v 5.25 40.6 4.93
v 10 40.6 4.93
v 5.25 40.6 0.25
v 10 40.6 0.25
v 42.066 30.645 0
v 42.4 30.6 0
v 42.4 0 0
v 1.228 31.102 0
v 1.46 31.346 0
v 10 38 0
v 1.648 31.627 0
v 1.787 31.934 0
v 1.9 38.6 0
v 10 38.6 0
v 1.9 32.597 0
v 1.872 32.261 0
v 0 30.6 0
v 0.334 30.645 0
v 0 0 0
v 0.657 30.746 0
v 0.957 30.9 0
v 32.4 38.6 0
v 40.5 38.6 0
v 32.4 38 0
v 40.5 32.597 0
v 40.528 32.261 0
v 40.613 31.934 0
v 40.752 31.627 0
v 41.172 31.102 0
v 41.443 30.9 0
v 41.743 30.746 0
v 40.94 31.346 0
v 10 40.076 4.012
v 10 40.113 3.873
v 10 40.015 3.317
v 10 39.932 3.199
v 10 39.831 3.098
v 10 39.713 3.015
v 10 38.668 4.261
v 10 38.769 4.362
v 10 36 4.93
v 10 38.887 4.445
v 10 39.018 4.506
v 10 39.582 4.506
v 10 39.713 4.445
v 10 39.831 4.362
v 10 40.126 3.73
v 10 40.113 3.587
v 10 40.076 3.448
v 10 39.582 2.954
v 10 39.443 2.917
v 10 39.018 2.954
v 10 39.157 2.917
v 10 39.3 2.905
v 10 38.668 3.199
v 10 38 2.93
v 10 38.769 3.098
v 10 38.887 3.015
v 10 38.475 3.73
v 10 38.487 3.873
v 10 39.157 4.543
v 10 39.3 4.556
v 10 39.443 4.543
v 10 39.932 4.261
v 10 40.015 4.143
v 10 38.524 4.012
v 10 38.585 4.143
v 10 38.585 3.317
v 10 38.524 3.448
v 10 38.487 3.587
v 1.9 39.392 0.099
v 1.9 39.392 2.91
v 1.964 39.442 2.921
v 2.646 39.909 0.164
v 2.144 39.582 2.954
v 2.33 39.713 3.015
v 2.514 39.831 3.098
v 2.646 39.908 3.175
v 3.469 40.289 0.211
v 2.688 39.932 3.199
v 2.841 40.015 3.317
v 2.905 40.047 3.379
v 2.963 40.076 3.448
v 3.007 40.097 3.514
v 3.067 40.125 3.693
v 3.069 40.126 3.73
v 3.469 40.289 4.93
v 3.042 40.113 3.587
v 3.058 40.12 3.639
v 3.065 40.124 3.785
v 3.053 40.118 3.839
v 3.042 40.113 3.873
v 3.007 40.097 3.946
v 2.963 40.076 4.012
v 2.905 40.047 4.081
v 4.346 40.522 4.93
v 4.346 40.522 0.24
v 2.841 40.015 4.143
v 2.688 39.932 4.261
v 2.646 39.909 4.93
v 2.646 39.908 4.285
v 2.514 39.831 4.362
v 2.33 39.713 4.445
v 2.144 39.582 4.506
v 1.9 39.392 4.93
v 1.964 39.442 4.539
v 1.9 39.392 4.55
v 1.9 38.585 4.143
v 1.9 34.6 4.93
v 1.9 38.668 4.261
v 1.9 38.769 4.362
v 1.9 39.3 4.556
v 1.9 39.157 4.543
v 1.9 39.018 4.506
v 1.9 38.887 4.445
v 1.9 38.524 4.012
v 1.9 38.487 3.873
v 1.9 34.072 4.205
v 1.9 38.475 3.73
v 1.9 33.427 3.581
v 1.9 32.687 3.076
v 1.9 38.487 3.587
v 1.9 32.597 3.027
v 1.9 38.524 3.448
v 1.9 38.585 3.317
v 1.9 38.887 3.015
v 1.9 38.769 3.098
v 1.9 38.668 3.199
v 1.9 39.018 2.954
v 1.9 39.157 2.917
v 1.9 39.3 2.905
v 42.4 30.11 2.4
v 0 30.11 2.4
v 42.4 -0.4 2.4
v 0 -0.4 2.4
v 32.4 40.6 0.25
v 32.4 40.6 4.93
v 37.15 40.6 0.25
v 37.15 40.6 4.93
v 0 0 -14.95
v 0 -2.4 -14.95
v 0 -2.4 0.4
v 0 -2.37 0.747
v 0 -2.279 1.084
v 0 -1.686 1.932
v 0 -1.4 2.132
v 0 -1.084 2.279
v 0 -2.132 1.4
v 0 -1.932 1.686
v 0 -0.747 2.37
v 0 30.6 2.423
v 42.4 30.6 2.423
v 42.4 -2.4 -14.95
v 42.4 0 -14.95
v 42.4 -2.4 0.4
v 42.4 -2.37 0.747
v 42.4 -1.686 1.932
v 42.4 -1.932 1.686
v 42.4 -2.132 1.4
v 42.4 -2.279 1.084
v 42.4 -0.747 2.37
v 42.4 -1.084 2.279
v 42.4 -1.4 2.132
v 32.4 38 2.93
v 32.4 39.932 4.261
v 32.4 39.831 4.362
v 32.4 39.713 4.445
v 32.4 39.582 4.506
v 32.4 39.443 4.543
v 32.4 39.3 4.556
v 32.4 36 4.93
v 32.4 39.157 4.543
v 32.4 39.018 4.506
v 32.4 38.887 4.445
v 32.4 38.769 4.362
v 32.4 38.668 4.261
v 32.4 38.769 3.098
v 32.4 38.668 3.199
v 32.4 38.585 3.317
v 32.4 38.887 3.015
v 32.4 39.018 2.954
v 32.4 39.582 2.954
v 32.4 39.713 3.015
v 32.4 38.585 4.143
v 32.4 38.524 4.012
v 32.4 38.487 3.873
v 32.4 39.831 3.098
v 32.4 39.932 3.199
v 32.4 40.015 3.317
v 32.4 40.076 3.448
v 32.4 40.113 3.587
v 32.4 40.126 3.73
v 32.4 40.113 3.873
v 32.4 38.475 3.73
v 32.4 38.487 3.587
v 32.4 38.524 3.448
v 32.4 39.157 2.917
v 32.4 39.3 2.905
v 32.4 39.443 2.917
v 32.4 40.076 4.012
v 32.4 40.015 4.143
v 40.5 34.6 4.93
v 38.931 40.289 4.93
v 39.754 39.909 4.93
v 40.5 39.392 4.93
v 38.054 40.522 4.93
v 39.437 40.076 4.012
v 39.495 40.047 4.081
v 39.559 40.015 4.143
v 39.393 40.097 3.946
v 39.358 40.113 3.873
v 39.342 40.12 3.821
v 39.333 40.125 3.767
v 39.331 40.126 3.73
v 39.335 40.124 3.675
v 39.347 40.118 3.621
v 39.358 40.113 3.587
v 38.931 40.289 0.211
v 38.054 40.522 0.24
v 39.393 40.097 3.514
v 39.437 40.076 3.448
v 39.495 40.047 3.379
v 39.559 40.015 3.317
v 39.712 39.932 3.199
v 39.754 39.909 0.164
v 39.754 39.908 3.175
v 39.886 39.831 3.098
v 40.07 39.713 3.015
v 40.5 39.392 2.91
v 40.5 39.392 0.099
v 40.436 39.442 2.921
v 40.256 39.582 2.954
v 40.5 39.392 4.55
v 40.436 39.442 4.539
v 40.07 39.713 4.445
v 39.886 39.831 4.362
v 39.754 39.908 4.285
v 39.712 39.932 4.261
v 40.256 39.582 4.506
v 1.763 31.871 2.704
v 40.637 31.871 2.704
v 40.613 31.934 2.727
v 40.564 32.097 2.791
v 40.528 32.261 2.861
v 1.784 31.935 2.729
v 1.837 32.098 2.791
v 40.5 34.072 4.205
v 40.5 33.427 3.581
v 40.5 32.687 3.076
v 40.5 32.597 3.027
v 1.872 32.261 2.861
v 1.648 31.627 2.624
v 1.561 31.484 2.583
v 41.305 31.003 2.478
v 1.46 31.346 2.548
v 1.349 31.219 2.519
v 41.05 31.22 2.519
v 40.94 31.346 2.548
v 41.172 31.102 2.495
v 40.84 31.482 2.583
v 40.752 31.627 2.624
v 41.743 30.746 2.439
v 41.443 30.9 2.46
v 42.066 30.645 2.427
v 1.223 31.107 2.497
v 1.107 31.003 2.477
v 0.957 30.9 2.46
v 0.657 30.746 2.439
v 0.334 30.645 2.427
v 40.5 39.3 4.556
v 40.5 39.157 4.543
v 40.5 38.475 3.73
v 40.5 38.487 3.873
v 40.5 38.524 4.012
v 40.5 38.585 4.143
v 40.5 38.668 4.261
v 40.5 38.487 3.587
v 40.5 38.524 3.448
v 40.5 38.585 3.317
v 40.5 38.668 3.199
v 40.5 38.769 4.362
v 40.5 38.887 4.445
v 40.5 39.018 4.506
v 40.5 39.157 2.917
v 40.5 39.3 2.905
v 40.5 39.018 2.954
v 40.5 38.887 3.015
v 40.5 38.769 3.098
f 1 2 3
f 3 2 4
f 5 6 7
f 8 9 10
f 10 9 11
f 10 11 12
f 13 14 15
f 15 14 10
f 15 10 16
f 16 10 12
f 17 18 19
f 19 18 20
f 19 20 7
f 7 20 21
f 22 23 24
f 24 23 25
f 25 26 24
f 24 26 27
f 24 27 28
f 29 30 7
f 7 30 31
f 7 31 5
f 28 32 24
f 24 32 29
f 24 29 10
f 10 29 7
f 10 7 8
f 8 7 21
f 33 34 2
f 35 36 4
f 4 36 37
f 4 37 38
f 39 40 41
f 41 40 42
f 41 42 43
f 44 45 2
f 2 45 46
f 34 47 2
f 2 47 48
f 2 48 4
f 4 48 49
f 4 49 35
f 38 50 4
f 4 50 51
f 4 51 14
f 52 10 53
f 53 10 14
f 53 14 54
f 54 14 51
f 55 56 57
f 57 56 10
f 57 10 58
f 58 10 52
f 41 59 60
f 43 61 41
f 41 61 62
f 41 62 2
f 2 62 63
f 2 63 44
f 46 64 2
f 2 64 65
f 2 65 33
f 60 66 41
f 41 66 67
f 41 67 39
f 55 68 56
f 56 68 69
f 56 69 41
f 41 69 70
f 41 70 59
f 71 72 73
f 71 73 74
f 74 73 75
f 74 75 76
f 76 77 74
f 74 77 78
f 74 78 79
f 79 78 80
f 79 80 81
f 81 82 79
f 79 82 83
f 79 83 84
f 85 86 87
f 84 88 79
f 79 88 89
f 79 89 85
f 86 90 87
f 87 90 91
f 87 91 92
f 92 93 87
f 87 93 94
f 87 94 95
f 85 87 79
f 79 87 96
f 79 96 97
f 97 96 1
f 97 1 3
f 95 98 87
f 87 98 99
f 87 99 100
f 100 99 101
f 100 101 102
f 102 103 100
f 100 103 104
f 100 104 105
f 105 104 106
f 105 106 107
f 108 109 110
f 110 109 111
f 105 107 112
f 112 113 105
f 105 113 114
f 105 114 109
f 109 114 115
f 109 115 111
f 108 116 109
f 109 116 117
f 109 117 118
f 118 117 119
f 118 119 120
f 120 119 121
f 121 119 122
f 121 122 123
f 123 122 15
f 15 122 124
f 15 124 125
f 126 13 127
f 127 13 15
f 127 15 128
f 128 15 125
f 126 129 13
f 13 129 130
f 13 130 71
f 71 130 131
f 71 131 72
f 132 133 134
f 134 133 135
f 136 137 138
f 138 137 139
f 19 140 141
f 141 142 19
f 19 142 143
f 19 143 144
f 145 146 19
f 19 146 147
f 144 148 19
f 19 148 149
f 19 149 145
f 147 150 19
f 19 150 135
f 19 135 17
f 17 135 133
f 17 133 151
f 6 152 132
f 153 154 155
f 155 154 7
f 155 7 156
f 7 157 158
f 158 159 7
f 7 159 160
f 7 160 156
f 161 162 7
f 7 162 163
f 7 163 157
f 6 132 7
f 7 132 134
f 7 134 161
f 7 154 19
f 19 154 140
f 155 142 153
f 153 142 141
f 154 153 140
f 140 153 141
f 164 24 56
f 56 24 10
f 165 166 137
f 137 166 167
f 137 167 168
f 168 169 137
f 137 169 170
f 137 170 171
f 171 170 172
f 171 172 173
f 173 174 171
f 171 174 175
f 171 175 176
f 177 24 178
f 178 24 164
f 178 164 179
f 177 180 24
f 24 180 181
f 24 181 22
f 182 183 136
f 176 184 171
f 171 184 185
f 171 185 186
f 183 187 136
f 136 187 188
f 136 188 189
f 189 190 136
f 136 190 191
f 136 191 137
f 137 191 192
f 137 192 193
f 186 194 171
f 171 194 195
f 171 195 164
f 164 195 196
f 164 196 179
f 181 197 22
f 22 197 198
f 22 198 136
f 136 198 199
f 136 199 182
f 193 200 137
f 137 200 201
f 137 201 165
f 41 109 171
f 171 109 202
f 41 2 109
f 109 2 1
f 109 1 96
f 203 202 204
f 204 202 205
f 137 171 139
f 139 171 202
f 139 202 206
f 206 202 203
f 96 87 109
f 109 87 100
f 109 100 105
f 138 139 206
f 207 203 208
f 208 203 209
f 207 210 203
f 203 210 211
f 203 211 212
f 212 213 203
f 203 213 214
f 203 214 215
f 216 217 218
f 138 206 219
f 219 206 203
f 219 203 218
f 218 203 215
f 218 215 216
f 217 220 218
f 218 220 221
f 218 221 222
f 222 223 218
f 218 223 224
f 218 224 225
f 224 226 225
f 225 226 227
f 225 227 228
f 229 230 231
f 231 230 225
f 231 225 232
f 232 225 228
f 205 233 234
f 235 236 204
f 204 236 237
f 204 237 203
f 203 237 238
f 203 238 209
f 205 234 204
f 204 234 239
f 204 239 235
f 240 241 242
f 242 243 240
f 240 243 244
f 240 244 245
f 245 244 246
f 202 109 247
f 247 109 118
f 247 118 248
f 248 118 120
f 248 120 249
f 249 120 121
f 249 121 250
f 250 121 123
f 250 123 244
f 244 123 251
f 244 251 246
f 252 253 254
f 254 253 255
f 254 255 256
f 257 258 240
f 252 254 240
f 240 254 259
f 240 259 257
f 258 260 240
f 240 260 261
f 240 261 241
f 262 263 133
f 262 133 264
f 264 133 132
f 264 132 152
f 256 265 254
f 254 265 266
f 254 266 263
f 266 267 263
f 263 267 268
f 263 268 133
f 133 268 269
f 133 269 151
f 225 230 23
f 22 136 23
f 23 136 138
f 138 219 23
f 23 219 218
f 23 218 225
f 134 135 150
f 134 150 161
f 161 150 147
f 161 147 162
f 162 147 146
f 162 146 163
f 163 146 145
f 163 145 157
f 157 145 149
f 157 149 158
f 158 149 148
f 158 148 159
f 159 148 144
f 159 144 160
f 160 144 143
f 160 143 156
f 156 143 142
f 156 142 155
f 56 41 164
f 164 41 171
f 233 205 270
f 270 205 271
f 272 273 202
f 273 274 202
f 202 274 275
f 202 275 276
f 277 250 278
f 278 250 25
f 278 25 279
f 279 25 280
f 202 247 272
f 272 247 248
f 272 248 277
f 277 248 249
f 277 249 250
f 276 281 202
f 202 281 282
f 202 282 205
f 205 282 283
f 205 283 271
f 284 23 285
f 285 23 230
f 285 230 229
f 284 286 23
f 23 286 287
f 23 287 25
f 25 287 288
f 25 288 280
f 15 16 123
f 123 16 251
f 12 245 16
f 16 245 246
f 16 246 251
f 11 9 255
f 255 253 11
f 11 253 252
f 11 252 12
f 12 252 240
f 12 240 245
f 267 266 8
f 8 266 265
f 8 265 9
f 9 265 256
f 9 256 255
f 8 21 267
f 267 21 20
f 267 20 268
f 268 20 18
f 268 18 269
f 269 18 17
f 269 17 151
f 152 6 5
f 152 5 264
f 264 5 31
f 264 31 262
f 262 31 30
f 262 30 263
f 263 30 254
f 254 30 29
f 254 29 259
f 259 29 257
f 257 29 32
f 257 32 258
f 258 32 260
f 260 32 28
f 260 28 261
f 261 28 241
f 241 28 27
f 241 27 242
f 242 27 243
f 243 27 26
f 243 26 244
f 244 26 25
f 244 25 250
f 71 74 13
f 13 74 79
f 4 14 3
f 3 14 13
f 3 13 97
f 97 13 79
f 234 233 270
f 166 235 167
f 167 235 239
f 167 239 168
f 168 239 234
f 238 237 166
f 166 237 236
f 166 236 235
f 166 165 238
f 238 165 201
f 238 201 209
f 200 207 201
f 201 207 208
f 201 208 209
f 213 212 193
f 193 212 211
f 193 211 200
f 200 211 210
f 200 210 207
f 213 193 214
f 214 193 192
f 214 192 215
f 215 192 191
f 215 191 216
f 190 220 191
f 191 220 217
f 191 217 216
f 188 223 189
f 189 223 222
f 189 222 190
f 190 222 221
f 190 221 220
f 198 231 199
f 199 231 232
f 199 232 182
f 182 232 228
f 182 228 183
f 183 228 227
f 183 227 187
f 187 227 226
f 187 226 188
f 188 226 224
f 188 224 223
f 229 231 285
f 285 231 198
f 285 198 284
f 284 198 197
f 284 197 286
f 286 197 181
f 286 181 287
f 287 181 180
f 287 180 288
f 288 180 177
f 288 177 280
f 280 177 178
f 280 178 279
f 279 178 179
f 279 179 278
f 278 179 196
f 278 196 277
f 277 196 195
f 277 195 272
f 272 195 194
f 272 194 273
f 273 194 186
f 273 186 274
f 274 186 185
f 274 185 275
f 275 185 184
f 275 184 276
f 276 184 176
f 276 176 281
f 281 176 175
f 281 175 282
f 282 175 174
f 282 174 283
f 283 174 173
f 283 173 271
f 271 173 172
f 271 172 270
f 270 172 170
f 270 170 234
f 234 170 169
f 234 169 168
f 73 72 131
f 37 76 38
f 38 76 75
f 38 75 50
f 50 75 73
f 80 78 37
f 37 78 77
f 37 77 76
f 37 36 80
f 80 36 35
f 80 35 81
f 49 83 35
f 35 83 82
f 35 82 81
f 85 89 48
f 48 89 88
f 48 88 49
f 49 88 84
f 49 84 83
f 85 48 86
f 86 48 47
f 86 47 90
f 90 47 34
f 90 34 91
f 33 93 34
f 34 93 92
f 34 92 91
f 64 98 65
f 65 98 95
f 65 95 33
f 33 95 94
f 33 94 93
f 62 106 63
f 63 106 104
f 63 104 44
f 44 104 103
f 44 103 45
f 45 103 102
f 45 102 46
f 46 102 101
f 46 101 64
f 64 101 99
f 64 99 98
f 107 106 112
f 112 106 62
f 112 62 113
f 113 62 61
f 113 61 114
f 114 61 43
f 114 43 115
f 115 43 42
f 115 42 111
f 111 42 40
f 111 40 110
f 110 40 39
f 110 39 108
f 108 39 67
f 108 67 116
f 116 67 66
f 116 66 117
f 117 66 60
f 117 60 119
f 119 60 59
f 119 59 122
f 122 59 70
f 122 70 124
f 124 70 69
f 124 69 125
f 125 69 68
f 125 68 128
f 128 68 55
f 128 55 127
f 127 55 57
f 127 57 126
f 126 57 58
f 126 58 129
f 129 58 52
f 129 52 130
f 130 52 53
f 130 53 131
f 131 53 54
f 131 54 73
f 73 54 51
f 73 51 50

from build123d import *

# Parameters (mm, degrees)
SKETCH1_W           = 42.4
SKETCH1_H           = 40.6
BOSS_EXTRUDE1_DEPTH = 2.4
SKETCH2_W           = 40
SKETCH2_H           = 2.4
BOSS_EXTRUDE2_DEPTH = 17.35
SKETCH3_W           = 22.4
SKETCH3_H           = 2.6
CUT_EXTRUDE1_DEPTH  = 2.4
BOSS_EXTRUDE3_DEPTH = 2.53
FILLET1_R           = 5.25
FILLET2_R           = 5.25
CUT_EXTRUDE2_DEPTH  = 16.4
FILLET3_R           = 2
CHAMFER1_SIZE       = 2
SKETCH9_W           = 1.9
SKETCH9_H           = 10
CUT_EXTRUDE4_DEPTH  = 61.577409156
FILLET5_R           = 2
BOSS_EXTRUDE4_DEPTH = 2.4
CUT_EXTRUDE5_START  = -8.1
SKETCH4_R           = 0.8255
CUT_EXTRUDE5_DEPTH  = 38.6


with BuildPart() as part:
    # Sketch1 → Boss-Extrude1 (new body)
    with BuildSketch(Plane.XY):
        with Locations((21.2, 20.3)):
            Rectangle(SKETCH1_W, SKETCH1_H)
    extrude(amount=BOSS_EXTRUDE1_DEPTH)

    # Sketch2 → Boss-Extrude2 (add)
    with BuildSketch(Plane.XY.offset(2.4)):
        with Locations((20, -1.2)):
            Rectangle(SKETCH2_W, SKETCH2_H)
    extrude(amount=-BOSS_EXTRUDE2_DEPTH)

    # Sketch3 → Cut-Extrude1 (cut)
    with BuildSketch(Plane.XY.offset(2.4)):
        with Locations((21.2, 39.3)):
            Rectangle(SKETCH3_W, SKETCH3_H)
    extrude(amount=-CUT_EXTRUDE1_DEPTH, mode=Mode.SUBTRACT)

    # Sketch5 → Boss-Extrude3 (add)
    with BuildSketch(Plane.XY.offset(2.4)):
        Polygon((0, 40.6), (0, 34.6), (42.4, 34.6), (42.4, 40.6), (32.4, 40.6), (32.4, 38), (10, 38), (10, 40.6), align=None)
    extrude(amount=BOSS_EXTRUDE3_DEPTH)

    # Fillet1
    fillet1_edges = [part.edges().sort_by_distance(p)[0] for p in [
        (0, 40.6, 2.465),
        (42.4, 40.6, 2.465),
    ]]
    fillet(fillet1_edges, radius=FILLET1_R)

    # Fillet2
    # the kernel refuses this fillet: 5.25 mm, written as the material it adds along each edge
    with BuildSketch(Plane(origin=(0, 34.6, 2.4), x_dir=(0, 0, 1), z_dir=(1, 0, 0))) as fillet2_piece_1:
        with BuildLine():
            CenterArc((5.25, 4.490445412), FILLET2_R, 180, 58.795429652)
            Line((0, 4.490445412), (-0.105, 4.490445412))
            Line((-0.105, 4.490445412), (-0.105, 0))
            Line((-0.105, 0), (0, -0.105))
            ThreePointArc((0, -0.105), (1.265, -0.105), (2.4756, -0.089808908))
            Line((2.4756, -0.089808908), (2.53, 0))
        make_face()
    extrude(amount=42.4)

    # Sketch6 → Cut-Extrude2 (cut)
    with BuildSketch(Plane.ZY.offset(-32.4)):
        Polygon((0, 40.6), (0, 38.6), (0.25, 40.6), align=None)
    cut_extrude2 = extrude(amount=-CUT_EXTRUDE2_DEPTH, mode=Mode.SUBTRACT)

    # Fillet3
    fillet3_edges = [part.edges().sort_by_distance(p)[0] for p in [
        (20, -2.4, 2.4),
    ]]
    fillet(fillet3_edges, radius=FILLET3_R)

    # Chamfer1
    chamfer1_edges = [part.edges().sort_by_distance(p)[0] for p in [
        (21.2, 38, 4.93),
    ]]
    chamfer(chamfer1_edges, length=CHAMFER1_SIZE)

    # Sketch9 → Cut-Extrude4 (cut, through all)
    with BuildSketch(Plane(origin=(0, 0, 0), x_dir=(-1, 0, 0), z_dir=(0, 0, -1))):
        with Locations((-41.45, 35.6)):
            Rectangle(SKETCH9_W, SKETCH9_H)
        with Locations((-0.95, 35.6)):
            Rectangle(SKETCH9_W, SKETCH9_H)
    extrude(amount=-CUT_EXTRUDE4_DEPTH, mode=Mode.SUBTRACT)

    # Fillet5
    # the kernel refuses this fillet: 2 mm, written as the material it adds along each edge
    with BuildSketch(Plane(origin=(1.9, 30.6, 0), x_dir=(0, 1, 0), z_dir=(0, 0, 1))) as fillet5_piece_1_section:
        with BuildLine():
            CenterArc((1.997498436, 2), FILLET5_R, 182.865983983, 87.134016017)
            Line((0, 1.9), (-0.039949969, 1.898))
            ThreePointArc((-0.039949969, 1.898), (-0.04, 0.95), (-0.04, 0))
            Line((-0.04, 0), (0, -0.04))
            Line((0, -0.04), (1.997498436, -0.04))
            Line((1.997498436, -0.04), (1.997498436, 0))
        make_face()
    fillet5_piece_1 = extrude(amount=7.416704545, mode=Mode.PRIVATE)
    fillet5_piece_1 = fillet5_piece_1 - Plane(origin=(1.464355644, 30.109554588, 7.65), x_dir=(0, 0, 1), z_dir=(-1, 0, 0)) * Cylinder(5.25, 23, mode=Mode.PRIVATE)
    add(fillet5_piece_1)
    with BuildSketch(Plane(origin=(40.5, 30.6, 0), x_dir=(0, 1, 0), z_dir=(0, 0, 1))) as fillet5_piece_2_section:
        with BuildLine():
            CenterArc((1.997498436, -2), FILLET5_R, 90, 87.134016017)
            Line((0, -1.9), (-0.039949969, -1.898))
            ThreePointArc((-0.039949969, -1.898), (-0.04, -0.95), (-0.04, 0))
            Line((-0.04, 0), (0, 0.04))
            Line((0, 0.04), (1.997498436, 0.04))
            Line((1.997498436, 0.04), (1.997498436, 0))
        make_face()
    fillet5_piece_2 = extrude(amount=7.416704545, mode=Mode.PRIVATE)
    fillet5_piece_2 = fillet5_piece_2 - Plane(origin=(40.935644356, 30.109554588, 7.65), x_dir=(0, 0, 1), z_dir=(-1, 0, 0)) * Cylinder(5.25, 23, mode=Mode.PRIVATE)
    add(fillet5_piece_2)

    # Sketch10 → Boss-Extrude4 (add)
    with BuildSketch(Plane(origin=(40, 0, 0), x_dir=(0, 0, -1), z_dir=(1, 0, 0))):
        with BuildLine():
            Line((-2.4, 0), (-2.4, -0.4))
            ThreePointArc((-2.4, -0.4), (-1.814213562, -1.814213562), (-0.4, -2.4))
            Line((-0.4, -2.4), (14.95, -2.4))
            Line((14.95, -2.4), (14.95, 0))
            Line((14.95, 0), (0, 0))
            Line((0, 0), (-2.4, 0))
        make_face()
    extrude(amount=BOSS_EXTRUDE4_DEPTH)

    # Mirror1: Cut-Extrude2 across plane
    add(cut_extrude2.mirror(Plane(origin=(21.2, 0, 0), x_dir=(0, 0, 1), z_dir=(1, 0, 0))), mode=Mode.SUBTRACT)

    # Sketch4 → Cut-Extrude5 (cut)
    with BuildSketch(Plane(origin=(10, 0, 0), x_dir=(0, 0, -1), z_dir=(1, 0, 0)).offset(CUT_EXTRUDE5_START)):
        with Locations(Location((-3.73, 39.3, 0), (0, 0, 173.581911643))):
            Circle(SKETCH4_R)
    extrude(amount=CUT_EXTRUDE5_DEPTH, mode=Mode.SUBTRACT)


solid = part.part
